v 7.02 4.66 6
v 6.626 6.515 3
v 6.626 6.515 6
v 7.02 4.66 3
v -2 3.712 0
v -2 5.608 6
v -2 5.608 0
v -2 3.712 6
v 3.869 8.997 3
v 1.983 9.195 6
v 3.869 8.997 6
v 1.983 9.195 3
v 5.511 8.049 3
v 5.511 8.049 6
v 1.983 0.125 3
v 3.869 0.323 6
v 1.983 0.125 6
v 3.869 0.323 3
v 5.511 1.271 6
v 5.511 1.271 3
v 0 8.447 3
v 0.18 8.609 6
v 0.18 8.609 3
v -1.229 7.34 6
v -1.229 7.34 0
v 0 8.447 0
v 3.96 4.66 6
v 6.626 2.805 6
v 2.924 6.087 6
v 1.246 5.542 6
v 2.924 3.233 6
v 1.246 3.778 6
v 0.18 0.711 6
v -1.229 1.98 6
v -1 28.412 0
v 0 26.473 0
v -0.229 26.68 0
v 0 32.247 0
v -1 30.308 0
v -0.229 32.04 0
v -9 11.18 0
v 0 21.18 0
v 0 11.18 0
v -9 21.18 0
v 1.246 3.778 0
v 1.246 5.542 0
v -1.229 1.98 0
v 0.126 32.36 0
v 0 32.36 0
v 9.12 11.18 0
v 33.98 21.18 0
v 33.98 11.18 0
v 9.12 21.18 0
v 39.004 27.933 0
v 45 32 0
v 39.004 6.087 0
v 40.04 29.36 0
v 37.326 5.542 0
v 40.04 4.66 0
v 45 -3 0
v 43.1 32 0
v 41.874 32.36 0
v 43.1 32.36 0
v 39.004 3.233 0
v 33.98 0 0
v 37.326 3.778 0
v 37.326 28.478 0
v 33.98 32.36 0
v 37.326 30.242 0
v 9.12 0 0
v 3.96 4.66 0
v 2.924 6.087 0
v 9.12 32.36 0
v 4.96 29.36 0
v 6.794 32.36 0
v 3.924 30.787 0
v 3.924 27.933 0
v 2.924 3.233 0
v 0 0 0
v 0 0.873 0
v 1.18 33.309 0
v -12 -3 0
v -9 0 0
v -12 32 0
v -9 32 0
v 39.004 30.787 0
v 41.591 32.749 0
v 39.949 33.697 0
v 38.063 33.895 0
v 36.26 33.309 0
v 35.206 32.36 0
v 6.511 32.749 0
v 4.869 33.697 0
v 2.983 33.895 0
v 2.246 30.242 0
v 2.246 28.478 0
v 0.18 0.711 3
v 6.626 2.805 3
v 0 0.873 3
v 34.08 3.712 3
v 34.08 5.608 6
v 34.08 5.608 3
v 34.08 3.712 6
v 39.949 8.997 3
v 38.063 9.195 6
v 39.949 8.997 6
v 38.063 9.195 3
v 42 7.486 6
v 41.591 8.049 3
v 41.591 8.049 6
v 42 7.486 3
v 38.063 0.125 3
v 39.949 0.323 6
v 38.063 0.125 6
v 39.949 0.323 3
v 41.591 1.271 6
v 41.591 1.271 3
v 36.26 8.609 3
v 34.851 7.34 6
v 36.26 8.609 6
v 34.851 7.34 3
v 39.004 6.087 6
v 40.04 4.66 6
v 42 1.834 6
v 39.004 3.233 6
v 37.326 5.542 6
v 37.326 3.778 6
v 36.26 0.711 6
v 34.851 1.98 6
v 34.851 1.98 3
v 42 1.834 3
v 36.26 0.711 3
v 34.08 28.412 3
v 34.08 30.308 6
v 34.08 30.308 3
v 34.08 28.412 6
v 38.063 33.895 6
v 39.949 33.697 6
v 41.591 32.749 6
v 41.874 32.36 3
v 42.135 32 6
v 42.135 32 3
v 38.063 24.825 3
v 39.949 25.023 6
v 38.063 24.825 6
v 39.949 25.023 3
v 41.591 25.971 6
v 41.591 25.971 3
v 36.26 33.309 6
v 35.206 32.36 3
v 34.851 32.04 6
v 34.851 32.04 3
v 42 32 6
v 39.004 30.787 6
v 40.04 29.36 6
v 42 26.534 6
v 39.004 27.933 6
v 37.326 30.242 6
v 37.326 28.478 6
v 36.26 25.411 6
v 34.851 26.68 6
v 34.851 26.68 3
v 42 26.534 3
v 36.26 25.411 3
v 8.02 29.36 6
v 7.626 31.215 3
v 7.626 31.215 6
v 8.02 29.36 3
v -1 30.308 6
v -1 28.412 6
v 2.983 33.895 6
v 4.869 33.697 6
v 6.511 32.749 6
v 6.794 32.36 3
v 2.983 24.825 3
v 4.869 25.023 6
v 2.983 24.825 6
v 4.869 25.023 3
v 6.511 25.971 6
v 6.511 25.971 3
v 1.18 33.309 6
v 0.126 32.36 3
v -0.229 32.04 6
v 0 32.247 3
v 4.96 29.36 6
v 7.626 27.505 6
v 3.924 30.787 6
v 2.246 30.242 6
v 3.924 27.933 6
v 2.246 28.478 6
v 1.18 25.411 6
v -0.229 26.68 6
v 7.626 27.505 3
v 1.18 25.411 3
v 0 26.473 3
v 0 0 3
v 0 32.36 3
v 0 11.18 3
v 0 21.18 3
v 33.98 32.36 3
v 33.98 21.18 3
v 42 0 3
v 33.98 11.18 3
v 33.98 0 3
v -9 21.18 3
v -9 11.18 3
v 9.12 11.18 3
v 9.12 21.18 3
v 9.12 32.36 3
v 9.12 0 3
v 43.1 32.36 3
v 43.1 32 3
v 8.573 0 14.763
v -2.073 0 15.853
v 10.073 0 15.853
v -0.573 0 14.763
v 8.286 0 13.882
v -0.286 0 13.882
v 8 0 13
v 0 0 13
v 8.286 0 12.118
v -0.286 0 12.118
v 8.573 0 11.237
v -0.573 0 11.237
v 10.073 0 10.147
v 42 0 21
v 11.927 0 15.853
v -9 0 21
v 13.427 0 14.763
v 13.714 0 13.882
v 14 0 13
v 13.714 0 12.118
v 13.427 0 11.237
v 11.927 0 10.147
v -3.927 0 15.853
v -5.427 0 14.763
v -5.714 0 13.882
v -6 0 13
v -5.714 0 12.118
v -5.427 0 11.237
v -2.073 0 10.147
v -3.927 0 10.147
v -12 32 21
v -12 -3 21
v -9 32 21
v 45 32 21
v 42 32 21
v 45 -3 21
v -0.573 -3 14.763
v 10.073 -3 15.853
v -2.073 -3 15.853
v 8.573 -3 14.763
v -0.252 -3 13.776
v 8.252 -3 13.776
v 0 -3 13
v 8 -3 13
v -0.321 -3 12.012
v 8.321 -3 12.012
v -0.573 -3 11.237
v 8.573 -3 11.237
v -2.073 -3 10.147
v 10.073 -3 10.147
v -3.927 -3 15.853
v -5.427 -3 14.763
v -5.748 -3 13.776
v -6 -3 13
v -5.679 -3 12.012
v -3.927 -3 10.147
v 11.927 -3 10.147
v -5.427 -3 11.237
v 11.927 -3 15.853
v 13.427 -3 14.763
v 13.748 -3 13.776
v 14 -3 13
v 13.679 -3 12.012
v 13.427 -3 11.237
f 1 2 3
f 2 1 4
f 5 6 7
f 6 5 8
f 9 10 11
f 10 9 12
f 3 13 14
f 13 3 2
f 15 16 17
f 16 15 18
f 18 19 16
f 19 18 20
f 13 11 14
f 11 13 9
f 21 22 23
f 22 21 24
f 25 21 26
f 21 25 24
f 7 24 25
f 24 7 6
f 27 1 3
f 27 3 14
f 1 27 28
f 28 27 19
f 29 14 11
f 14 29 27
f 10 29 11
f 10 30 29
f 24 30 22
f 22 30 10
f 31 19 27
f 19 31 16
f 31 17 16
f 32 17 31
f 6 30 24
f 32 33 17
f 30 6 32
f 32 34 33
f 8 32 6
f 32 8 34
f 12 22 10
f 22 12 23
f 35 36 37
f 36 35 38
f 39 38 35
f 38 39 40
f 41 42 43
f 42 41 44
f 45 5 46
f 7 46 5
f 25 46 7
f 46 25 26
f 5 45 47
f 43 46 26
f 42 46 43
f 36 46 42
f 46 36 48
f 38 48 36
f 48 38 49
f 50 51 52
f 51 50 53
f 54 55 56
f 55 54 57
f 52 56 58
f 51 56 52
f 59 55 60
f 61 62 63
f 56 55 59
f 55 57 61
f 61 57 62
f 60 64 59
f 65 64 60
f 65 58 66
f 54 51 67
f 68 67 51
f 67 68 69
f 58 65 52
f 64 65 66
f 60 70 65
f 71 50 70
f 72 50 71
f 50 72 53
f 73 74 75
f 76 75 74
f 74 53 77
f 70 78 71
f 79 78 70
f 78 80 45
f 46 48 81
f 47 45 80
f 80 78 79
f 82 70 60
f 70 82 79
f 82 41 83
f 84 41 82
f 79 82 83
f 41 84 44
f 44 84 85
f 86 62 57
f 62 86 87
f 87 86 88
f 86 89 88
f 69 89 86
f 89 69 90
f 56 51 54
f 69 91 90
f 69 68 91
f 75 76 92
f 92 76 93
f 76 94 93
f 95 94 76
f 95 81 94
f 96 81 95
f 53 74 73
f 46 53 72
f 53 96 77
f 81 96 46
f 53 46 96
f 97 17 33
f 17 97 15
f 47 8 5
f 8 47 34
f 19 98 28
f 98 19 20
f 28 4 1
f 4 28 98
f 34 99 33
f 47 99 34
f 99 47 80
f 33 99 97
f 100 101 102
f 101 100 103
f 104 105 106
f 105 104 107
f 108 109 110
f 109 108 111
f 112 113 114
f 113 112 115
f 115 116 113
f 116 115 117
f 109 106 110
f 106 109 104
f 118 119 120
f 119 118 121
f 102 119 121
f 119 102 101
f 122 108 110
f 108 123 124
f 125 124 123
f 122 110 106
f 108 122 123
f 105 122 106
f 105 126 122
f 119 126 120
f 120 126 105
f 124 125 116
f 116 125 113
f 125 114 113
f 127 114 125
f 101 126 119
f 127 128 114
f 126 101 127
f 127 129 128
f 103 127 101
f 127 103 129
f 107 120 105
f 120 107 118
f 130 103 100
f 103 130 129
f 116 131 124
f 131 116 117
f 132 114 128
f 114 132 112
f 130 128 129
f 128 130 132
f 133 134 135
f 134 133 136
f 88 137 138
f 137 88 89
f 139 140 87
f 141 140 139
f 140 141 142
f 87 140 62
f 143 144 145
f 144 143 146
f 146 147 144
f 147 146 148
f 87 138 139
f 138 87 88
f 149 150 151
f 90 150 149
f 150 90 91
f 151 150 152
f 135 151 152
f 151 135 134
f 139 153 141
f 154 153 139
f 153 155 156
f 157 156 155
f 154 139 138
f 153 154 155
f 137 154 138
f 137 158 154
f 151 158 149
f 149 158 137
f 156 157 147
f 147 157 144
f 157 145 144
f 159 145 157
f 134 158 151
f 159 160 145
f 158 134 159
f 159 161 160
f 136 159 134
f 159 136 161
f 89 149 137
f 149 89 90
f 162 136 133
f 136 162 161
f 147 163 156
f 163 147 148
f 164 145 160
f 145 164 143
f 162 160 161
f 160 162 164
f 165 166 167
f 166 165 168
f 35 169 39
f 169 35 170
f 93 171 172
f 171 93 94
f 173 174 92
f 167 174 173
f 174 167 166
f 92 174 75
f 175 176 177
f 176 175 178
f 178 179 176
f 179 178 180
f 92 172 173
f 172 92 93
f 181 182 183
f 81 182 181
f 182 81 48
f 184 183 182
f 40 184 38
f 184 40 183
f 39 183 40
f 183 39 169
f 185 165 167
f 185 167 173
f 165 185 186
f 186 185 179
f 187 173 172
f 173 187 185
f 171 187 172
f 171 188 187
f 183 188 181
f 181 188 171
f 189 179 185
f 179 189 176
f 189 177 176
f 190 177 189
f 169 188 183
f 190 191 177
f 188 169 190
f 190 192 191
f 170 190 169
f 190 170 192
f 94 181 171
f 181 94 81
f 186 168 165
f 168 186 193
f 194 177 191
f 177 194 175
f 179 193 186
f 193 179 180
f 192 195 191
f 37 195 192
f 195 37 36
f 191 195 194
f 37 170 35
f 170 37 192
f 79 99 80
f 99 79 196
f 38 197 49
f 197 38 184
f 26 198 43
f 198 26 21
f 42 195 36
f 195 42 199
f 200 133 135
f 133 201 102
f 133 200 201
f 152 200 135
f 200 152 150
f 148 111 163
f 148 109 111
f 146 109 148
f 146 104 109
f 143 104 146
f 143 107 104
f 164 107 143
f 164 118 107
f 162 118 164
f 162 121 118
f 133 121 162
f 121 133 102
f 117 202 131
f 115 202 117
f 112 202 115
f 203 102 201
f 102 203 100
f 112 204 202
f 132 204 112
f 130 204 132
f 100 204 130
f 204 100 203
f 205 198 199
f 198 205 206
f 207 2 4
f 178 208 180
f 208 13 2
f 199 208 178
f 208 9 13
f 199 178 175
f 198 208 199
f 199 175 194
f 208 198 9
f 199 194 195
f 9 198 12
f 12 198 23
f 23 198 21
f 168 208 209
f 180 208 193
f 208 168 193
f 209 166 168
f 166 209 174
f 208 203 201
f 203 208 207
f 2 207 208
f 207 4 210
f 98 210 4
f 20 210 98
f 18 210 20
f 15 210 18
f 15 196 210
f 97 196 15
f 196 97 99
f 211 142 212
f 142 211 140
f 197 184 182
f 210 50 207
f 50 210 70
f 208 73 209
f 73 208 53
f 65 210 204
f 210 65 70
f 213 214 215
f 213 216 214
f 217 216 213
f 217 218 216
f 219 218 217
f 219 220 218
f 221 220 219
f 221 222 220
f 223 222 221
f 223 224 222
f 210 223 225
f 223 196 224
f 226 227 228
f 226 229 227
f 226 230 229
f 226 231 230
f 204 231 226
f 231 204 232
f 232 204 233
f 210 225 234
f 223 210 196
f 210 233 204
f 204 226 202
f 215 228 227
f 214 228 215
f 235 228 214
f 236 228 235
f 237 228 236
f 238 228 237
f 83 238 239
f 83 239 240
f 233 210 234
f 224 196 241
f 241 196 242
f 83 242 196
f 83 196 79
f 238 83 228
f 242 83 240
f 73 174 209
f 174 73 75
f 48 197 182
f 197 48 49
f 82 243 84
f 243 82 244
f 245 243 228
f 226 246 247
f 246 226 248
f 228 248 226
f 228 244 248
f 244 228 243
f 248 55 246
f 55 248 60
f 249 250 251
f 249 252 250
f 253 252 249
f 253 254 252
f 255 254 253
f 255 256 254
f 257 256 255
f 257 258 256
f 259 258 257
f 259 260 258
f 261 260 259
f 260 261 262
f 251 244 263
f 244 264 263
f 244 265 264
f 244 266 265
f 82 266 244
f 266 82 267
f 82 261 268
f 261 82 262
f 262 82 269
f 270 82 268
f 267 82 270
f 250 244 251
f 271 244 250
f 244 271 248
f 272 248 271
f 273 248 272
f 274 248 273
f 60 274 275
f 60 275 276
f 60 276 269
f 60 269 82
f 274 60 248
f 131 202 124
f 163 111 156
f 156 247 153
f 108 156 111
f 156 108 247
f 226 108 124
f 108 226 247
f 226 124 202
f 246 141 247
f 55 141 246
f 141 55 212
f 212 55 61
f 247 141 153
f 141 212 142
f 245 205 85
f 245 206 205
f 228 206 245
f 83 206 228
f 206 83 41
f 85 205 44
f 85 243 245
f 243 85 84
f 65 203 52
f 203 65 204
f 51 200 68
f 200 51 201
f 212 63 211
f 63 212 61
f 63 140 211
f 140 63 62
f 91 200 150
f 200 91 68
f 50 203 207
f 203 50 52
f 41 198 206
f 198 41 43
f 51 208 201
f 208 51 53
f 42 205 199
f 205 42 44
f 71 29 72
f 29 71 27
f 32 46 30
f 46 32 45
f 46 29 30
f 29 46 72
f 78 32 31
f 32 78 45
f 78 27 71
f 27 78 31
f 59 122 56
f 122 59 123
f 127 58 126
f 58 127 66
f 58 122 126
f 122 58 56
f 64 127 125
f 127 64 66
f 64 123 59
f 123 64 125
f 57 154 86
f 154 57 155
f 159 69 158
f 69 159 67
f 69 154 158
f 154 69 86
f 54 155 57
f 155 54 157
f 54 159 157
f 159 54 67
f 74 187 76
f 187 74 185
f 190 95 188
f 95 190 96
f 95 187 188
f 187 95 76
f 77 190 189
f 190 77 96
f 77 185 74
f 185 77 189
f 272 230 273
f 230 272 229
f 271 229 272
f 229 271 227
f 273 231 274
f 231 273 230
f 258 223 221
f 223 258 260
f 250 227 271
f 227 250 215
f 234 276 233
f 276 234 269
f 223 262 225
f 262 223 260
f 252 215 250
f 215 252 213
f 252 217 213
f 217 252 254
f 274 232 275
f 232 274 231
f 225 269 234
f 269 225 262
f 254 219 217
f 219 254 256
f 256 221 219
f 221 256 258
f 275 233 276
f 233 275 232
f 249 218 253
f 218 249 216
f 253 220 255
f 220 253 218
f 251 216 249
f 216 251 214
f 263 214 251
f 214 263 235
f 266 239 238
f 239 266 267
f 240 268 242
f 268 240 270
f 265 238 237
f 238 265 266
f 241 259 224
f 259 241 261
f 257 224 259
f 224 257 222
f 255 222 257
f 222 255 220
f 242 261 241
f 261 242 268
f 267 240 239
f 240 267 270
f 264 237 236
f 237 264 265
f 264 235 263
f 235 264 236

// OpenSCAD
t = 3; //plastic thickness
g= 1; // gap or clearance
w= 41; //widht and height
sb = 10;
bh = 21;  //box height
hr= 3.12/2; // hole radius
hf = hr + 2.1; //hole from front
hin = hr + 0.9;  //hole from side
hb = hr + 26.8; //bback hole from front
soh = t+3;  //standoff height
sor = hr+3;

base =[sor+sor, //board gaps t screwbase
    t+g+hb,  //thickness,gap,dist from front, holediam, t
    t];
base_t =[-sb-3,0,0];
    
 hholes = [[hin,hf+g],[w-hin,hf+g],[w-hin,hb+g],[hin+g,hb+g]];

difference(){
   union() { 
cube(base);
translate([-12,-t,0])cube([w+12+g+t,t,bh]);  //front
translate([w+g,0,0])cube([t,w-9,bh]);  //right side
translate([-12,0,0])cube([t,w-9,bh]);  //left side
translate([w-hin-sor,0,0]) cube(base);
translate([-12,base[1]/2-sb/2,0]) cube([w+12,sb,t]); //base strut
//translate([-12+t,0,bh-3])cube([5,w-9,t]);  //left bracket
//translate([w+g+t,(w-9)/2,bh-3])cube([5,(w-9)/2,t]);  //left bracket
       
 for (i =hholes) translate(i)cylinder(r=sor,h=soh);
 }
    for (i = hholes)
        translate(i) cylinder(r=1.5,h=100,center = true);
    translate([11,0,7+3+3])rotate([90,0,0])cylinder(r=3,h=50,center=true);
    translate([-3,0,7+3+3])rotate([90,0,0])cylinder(r=3,h=50,center=true);

}
